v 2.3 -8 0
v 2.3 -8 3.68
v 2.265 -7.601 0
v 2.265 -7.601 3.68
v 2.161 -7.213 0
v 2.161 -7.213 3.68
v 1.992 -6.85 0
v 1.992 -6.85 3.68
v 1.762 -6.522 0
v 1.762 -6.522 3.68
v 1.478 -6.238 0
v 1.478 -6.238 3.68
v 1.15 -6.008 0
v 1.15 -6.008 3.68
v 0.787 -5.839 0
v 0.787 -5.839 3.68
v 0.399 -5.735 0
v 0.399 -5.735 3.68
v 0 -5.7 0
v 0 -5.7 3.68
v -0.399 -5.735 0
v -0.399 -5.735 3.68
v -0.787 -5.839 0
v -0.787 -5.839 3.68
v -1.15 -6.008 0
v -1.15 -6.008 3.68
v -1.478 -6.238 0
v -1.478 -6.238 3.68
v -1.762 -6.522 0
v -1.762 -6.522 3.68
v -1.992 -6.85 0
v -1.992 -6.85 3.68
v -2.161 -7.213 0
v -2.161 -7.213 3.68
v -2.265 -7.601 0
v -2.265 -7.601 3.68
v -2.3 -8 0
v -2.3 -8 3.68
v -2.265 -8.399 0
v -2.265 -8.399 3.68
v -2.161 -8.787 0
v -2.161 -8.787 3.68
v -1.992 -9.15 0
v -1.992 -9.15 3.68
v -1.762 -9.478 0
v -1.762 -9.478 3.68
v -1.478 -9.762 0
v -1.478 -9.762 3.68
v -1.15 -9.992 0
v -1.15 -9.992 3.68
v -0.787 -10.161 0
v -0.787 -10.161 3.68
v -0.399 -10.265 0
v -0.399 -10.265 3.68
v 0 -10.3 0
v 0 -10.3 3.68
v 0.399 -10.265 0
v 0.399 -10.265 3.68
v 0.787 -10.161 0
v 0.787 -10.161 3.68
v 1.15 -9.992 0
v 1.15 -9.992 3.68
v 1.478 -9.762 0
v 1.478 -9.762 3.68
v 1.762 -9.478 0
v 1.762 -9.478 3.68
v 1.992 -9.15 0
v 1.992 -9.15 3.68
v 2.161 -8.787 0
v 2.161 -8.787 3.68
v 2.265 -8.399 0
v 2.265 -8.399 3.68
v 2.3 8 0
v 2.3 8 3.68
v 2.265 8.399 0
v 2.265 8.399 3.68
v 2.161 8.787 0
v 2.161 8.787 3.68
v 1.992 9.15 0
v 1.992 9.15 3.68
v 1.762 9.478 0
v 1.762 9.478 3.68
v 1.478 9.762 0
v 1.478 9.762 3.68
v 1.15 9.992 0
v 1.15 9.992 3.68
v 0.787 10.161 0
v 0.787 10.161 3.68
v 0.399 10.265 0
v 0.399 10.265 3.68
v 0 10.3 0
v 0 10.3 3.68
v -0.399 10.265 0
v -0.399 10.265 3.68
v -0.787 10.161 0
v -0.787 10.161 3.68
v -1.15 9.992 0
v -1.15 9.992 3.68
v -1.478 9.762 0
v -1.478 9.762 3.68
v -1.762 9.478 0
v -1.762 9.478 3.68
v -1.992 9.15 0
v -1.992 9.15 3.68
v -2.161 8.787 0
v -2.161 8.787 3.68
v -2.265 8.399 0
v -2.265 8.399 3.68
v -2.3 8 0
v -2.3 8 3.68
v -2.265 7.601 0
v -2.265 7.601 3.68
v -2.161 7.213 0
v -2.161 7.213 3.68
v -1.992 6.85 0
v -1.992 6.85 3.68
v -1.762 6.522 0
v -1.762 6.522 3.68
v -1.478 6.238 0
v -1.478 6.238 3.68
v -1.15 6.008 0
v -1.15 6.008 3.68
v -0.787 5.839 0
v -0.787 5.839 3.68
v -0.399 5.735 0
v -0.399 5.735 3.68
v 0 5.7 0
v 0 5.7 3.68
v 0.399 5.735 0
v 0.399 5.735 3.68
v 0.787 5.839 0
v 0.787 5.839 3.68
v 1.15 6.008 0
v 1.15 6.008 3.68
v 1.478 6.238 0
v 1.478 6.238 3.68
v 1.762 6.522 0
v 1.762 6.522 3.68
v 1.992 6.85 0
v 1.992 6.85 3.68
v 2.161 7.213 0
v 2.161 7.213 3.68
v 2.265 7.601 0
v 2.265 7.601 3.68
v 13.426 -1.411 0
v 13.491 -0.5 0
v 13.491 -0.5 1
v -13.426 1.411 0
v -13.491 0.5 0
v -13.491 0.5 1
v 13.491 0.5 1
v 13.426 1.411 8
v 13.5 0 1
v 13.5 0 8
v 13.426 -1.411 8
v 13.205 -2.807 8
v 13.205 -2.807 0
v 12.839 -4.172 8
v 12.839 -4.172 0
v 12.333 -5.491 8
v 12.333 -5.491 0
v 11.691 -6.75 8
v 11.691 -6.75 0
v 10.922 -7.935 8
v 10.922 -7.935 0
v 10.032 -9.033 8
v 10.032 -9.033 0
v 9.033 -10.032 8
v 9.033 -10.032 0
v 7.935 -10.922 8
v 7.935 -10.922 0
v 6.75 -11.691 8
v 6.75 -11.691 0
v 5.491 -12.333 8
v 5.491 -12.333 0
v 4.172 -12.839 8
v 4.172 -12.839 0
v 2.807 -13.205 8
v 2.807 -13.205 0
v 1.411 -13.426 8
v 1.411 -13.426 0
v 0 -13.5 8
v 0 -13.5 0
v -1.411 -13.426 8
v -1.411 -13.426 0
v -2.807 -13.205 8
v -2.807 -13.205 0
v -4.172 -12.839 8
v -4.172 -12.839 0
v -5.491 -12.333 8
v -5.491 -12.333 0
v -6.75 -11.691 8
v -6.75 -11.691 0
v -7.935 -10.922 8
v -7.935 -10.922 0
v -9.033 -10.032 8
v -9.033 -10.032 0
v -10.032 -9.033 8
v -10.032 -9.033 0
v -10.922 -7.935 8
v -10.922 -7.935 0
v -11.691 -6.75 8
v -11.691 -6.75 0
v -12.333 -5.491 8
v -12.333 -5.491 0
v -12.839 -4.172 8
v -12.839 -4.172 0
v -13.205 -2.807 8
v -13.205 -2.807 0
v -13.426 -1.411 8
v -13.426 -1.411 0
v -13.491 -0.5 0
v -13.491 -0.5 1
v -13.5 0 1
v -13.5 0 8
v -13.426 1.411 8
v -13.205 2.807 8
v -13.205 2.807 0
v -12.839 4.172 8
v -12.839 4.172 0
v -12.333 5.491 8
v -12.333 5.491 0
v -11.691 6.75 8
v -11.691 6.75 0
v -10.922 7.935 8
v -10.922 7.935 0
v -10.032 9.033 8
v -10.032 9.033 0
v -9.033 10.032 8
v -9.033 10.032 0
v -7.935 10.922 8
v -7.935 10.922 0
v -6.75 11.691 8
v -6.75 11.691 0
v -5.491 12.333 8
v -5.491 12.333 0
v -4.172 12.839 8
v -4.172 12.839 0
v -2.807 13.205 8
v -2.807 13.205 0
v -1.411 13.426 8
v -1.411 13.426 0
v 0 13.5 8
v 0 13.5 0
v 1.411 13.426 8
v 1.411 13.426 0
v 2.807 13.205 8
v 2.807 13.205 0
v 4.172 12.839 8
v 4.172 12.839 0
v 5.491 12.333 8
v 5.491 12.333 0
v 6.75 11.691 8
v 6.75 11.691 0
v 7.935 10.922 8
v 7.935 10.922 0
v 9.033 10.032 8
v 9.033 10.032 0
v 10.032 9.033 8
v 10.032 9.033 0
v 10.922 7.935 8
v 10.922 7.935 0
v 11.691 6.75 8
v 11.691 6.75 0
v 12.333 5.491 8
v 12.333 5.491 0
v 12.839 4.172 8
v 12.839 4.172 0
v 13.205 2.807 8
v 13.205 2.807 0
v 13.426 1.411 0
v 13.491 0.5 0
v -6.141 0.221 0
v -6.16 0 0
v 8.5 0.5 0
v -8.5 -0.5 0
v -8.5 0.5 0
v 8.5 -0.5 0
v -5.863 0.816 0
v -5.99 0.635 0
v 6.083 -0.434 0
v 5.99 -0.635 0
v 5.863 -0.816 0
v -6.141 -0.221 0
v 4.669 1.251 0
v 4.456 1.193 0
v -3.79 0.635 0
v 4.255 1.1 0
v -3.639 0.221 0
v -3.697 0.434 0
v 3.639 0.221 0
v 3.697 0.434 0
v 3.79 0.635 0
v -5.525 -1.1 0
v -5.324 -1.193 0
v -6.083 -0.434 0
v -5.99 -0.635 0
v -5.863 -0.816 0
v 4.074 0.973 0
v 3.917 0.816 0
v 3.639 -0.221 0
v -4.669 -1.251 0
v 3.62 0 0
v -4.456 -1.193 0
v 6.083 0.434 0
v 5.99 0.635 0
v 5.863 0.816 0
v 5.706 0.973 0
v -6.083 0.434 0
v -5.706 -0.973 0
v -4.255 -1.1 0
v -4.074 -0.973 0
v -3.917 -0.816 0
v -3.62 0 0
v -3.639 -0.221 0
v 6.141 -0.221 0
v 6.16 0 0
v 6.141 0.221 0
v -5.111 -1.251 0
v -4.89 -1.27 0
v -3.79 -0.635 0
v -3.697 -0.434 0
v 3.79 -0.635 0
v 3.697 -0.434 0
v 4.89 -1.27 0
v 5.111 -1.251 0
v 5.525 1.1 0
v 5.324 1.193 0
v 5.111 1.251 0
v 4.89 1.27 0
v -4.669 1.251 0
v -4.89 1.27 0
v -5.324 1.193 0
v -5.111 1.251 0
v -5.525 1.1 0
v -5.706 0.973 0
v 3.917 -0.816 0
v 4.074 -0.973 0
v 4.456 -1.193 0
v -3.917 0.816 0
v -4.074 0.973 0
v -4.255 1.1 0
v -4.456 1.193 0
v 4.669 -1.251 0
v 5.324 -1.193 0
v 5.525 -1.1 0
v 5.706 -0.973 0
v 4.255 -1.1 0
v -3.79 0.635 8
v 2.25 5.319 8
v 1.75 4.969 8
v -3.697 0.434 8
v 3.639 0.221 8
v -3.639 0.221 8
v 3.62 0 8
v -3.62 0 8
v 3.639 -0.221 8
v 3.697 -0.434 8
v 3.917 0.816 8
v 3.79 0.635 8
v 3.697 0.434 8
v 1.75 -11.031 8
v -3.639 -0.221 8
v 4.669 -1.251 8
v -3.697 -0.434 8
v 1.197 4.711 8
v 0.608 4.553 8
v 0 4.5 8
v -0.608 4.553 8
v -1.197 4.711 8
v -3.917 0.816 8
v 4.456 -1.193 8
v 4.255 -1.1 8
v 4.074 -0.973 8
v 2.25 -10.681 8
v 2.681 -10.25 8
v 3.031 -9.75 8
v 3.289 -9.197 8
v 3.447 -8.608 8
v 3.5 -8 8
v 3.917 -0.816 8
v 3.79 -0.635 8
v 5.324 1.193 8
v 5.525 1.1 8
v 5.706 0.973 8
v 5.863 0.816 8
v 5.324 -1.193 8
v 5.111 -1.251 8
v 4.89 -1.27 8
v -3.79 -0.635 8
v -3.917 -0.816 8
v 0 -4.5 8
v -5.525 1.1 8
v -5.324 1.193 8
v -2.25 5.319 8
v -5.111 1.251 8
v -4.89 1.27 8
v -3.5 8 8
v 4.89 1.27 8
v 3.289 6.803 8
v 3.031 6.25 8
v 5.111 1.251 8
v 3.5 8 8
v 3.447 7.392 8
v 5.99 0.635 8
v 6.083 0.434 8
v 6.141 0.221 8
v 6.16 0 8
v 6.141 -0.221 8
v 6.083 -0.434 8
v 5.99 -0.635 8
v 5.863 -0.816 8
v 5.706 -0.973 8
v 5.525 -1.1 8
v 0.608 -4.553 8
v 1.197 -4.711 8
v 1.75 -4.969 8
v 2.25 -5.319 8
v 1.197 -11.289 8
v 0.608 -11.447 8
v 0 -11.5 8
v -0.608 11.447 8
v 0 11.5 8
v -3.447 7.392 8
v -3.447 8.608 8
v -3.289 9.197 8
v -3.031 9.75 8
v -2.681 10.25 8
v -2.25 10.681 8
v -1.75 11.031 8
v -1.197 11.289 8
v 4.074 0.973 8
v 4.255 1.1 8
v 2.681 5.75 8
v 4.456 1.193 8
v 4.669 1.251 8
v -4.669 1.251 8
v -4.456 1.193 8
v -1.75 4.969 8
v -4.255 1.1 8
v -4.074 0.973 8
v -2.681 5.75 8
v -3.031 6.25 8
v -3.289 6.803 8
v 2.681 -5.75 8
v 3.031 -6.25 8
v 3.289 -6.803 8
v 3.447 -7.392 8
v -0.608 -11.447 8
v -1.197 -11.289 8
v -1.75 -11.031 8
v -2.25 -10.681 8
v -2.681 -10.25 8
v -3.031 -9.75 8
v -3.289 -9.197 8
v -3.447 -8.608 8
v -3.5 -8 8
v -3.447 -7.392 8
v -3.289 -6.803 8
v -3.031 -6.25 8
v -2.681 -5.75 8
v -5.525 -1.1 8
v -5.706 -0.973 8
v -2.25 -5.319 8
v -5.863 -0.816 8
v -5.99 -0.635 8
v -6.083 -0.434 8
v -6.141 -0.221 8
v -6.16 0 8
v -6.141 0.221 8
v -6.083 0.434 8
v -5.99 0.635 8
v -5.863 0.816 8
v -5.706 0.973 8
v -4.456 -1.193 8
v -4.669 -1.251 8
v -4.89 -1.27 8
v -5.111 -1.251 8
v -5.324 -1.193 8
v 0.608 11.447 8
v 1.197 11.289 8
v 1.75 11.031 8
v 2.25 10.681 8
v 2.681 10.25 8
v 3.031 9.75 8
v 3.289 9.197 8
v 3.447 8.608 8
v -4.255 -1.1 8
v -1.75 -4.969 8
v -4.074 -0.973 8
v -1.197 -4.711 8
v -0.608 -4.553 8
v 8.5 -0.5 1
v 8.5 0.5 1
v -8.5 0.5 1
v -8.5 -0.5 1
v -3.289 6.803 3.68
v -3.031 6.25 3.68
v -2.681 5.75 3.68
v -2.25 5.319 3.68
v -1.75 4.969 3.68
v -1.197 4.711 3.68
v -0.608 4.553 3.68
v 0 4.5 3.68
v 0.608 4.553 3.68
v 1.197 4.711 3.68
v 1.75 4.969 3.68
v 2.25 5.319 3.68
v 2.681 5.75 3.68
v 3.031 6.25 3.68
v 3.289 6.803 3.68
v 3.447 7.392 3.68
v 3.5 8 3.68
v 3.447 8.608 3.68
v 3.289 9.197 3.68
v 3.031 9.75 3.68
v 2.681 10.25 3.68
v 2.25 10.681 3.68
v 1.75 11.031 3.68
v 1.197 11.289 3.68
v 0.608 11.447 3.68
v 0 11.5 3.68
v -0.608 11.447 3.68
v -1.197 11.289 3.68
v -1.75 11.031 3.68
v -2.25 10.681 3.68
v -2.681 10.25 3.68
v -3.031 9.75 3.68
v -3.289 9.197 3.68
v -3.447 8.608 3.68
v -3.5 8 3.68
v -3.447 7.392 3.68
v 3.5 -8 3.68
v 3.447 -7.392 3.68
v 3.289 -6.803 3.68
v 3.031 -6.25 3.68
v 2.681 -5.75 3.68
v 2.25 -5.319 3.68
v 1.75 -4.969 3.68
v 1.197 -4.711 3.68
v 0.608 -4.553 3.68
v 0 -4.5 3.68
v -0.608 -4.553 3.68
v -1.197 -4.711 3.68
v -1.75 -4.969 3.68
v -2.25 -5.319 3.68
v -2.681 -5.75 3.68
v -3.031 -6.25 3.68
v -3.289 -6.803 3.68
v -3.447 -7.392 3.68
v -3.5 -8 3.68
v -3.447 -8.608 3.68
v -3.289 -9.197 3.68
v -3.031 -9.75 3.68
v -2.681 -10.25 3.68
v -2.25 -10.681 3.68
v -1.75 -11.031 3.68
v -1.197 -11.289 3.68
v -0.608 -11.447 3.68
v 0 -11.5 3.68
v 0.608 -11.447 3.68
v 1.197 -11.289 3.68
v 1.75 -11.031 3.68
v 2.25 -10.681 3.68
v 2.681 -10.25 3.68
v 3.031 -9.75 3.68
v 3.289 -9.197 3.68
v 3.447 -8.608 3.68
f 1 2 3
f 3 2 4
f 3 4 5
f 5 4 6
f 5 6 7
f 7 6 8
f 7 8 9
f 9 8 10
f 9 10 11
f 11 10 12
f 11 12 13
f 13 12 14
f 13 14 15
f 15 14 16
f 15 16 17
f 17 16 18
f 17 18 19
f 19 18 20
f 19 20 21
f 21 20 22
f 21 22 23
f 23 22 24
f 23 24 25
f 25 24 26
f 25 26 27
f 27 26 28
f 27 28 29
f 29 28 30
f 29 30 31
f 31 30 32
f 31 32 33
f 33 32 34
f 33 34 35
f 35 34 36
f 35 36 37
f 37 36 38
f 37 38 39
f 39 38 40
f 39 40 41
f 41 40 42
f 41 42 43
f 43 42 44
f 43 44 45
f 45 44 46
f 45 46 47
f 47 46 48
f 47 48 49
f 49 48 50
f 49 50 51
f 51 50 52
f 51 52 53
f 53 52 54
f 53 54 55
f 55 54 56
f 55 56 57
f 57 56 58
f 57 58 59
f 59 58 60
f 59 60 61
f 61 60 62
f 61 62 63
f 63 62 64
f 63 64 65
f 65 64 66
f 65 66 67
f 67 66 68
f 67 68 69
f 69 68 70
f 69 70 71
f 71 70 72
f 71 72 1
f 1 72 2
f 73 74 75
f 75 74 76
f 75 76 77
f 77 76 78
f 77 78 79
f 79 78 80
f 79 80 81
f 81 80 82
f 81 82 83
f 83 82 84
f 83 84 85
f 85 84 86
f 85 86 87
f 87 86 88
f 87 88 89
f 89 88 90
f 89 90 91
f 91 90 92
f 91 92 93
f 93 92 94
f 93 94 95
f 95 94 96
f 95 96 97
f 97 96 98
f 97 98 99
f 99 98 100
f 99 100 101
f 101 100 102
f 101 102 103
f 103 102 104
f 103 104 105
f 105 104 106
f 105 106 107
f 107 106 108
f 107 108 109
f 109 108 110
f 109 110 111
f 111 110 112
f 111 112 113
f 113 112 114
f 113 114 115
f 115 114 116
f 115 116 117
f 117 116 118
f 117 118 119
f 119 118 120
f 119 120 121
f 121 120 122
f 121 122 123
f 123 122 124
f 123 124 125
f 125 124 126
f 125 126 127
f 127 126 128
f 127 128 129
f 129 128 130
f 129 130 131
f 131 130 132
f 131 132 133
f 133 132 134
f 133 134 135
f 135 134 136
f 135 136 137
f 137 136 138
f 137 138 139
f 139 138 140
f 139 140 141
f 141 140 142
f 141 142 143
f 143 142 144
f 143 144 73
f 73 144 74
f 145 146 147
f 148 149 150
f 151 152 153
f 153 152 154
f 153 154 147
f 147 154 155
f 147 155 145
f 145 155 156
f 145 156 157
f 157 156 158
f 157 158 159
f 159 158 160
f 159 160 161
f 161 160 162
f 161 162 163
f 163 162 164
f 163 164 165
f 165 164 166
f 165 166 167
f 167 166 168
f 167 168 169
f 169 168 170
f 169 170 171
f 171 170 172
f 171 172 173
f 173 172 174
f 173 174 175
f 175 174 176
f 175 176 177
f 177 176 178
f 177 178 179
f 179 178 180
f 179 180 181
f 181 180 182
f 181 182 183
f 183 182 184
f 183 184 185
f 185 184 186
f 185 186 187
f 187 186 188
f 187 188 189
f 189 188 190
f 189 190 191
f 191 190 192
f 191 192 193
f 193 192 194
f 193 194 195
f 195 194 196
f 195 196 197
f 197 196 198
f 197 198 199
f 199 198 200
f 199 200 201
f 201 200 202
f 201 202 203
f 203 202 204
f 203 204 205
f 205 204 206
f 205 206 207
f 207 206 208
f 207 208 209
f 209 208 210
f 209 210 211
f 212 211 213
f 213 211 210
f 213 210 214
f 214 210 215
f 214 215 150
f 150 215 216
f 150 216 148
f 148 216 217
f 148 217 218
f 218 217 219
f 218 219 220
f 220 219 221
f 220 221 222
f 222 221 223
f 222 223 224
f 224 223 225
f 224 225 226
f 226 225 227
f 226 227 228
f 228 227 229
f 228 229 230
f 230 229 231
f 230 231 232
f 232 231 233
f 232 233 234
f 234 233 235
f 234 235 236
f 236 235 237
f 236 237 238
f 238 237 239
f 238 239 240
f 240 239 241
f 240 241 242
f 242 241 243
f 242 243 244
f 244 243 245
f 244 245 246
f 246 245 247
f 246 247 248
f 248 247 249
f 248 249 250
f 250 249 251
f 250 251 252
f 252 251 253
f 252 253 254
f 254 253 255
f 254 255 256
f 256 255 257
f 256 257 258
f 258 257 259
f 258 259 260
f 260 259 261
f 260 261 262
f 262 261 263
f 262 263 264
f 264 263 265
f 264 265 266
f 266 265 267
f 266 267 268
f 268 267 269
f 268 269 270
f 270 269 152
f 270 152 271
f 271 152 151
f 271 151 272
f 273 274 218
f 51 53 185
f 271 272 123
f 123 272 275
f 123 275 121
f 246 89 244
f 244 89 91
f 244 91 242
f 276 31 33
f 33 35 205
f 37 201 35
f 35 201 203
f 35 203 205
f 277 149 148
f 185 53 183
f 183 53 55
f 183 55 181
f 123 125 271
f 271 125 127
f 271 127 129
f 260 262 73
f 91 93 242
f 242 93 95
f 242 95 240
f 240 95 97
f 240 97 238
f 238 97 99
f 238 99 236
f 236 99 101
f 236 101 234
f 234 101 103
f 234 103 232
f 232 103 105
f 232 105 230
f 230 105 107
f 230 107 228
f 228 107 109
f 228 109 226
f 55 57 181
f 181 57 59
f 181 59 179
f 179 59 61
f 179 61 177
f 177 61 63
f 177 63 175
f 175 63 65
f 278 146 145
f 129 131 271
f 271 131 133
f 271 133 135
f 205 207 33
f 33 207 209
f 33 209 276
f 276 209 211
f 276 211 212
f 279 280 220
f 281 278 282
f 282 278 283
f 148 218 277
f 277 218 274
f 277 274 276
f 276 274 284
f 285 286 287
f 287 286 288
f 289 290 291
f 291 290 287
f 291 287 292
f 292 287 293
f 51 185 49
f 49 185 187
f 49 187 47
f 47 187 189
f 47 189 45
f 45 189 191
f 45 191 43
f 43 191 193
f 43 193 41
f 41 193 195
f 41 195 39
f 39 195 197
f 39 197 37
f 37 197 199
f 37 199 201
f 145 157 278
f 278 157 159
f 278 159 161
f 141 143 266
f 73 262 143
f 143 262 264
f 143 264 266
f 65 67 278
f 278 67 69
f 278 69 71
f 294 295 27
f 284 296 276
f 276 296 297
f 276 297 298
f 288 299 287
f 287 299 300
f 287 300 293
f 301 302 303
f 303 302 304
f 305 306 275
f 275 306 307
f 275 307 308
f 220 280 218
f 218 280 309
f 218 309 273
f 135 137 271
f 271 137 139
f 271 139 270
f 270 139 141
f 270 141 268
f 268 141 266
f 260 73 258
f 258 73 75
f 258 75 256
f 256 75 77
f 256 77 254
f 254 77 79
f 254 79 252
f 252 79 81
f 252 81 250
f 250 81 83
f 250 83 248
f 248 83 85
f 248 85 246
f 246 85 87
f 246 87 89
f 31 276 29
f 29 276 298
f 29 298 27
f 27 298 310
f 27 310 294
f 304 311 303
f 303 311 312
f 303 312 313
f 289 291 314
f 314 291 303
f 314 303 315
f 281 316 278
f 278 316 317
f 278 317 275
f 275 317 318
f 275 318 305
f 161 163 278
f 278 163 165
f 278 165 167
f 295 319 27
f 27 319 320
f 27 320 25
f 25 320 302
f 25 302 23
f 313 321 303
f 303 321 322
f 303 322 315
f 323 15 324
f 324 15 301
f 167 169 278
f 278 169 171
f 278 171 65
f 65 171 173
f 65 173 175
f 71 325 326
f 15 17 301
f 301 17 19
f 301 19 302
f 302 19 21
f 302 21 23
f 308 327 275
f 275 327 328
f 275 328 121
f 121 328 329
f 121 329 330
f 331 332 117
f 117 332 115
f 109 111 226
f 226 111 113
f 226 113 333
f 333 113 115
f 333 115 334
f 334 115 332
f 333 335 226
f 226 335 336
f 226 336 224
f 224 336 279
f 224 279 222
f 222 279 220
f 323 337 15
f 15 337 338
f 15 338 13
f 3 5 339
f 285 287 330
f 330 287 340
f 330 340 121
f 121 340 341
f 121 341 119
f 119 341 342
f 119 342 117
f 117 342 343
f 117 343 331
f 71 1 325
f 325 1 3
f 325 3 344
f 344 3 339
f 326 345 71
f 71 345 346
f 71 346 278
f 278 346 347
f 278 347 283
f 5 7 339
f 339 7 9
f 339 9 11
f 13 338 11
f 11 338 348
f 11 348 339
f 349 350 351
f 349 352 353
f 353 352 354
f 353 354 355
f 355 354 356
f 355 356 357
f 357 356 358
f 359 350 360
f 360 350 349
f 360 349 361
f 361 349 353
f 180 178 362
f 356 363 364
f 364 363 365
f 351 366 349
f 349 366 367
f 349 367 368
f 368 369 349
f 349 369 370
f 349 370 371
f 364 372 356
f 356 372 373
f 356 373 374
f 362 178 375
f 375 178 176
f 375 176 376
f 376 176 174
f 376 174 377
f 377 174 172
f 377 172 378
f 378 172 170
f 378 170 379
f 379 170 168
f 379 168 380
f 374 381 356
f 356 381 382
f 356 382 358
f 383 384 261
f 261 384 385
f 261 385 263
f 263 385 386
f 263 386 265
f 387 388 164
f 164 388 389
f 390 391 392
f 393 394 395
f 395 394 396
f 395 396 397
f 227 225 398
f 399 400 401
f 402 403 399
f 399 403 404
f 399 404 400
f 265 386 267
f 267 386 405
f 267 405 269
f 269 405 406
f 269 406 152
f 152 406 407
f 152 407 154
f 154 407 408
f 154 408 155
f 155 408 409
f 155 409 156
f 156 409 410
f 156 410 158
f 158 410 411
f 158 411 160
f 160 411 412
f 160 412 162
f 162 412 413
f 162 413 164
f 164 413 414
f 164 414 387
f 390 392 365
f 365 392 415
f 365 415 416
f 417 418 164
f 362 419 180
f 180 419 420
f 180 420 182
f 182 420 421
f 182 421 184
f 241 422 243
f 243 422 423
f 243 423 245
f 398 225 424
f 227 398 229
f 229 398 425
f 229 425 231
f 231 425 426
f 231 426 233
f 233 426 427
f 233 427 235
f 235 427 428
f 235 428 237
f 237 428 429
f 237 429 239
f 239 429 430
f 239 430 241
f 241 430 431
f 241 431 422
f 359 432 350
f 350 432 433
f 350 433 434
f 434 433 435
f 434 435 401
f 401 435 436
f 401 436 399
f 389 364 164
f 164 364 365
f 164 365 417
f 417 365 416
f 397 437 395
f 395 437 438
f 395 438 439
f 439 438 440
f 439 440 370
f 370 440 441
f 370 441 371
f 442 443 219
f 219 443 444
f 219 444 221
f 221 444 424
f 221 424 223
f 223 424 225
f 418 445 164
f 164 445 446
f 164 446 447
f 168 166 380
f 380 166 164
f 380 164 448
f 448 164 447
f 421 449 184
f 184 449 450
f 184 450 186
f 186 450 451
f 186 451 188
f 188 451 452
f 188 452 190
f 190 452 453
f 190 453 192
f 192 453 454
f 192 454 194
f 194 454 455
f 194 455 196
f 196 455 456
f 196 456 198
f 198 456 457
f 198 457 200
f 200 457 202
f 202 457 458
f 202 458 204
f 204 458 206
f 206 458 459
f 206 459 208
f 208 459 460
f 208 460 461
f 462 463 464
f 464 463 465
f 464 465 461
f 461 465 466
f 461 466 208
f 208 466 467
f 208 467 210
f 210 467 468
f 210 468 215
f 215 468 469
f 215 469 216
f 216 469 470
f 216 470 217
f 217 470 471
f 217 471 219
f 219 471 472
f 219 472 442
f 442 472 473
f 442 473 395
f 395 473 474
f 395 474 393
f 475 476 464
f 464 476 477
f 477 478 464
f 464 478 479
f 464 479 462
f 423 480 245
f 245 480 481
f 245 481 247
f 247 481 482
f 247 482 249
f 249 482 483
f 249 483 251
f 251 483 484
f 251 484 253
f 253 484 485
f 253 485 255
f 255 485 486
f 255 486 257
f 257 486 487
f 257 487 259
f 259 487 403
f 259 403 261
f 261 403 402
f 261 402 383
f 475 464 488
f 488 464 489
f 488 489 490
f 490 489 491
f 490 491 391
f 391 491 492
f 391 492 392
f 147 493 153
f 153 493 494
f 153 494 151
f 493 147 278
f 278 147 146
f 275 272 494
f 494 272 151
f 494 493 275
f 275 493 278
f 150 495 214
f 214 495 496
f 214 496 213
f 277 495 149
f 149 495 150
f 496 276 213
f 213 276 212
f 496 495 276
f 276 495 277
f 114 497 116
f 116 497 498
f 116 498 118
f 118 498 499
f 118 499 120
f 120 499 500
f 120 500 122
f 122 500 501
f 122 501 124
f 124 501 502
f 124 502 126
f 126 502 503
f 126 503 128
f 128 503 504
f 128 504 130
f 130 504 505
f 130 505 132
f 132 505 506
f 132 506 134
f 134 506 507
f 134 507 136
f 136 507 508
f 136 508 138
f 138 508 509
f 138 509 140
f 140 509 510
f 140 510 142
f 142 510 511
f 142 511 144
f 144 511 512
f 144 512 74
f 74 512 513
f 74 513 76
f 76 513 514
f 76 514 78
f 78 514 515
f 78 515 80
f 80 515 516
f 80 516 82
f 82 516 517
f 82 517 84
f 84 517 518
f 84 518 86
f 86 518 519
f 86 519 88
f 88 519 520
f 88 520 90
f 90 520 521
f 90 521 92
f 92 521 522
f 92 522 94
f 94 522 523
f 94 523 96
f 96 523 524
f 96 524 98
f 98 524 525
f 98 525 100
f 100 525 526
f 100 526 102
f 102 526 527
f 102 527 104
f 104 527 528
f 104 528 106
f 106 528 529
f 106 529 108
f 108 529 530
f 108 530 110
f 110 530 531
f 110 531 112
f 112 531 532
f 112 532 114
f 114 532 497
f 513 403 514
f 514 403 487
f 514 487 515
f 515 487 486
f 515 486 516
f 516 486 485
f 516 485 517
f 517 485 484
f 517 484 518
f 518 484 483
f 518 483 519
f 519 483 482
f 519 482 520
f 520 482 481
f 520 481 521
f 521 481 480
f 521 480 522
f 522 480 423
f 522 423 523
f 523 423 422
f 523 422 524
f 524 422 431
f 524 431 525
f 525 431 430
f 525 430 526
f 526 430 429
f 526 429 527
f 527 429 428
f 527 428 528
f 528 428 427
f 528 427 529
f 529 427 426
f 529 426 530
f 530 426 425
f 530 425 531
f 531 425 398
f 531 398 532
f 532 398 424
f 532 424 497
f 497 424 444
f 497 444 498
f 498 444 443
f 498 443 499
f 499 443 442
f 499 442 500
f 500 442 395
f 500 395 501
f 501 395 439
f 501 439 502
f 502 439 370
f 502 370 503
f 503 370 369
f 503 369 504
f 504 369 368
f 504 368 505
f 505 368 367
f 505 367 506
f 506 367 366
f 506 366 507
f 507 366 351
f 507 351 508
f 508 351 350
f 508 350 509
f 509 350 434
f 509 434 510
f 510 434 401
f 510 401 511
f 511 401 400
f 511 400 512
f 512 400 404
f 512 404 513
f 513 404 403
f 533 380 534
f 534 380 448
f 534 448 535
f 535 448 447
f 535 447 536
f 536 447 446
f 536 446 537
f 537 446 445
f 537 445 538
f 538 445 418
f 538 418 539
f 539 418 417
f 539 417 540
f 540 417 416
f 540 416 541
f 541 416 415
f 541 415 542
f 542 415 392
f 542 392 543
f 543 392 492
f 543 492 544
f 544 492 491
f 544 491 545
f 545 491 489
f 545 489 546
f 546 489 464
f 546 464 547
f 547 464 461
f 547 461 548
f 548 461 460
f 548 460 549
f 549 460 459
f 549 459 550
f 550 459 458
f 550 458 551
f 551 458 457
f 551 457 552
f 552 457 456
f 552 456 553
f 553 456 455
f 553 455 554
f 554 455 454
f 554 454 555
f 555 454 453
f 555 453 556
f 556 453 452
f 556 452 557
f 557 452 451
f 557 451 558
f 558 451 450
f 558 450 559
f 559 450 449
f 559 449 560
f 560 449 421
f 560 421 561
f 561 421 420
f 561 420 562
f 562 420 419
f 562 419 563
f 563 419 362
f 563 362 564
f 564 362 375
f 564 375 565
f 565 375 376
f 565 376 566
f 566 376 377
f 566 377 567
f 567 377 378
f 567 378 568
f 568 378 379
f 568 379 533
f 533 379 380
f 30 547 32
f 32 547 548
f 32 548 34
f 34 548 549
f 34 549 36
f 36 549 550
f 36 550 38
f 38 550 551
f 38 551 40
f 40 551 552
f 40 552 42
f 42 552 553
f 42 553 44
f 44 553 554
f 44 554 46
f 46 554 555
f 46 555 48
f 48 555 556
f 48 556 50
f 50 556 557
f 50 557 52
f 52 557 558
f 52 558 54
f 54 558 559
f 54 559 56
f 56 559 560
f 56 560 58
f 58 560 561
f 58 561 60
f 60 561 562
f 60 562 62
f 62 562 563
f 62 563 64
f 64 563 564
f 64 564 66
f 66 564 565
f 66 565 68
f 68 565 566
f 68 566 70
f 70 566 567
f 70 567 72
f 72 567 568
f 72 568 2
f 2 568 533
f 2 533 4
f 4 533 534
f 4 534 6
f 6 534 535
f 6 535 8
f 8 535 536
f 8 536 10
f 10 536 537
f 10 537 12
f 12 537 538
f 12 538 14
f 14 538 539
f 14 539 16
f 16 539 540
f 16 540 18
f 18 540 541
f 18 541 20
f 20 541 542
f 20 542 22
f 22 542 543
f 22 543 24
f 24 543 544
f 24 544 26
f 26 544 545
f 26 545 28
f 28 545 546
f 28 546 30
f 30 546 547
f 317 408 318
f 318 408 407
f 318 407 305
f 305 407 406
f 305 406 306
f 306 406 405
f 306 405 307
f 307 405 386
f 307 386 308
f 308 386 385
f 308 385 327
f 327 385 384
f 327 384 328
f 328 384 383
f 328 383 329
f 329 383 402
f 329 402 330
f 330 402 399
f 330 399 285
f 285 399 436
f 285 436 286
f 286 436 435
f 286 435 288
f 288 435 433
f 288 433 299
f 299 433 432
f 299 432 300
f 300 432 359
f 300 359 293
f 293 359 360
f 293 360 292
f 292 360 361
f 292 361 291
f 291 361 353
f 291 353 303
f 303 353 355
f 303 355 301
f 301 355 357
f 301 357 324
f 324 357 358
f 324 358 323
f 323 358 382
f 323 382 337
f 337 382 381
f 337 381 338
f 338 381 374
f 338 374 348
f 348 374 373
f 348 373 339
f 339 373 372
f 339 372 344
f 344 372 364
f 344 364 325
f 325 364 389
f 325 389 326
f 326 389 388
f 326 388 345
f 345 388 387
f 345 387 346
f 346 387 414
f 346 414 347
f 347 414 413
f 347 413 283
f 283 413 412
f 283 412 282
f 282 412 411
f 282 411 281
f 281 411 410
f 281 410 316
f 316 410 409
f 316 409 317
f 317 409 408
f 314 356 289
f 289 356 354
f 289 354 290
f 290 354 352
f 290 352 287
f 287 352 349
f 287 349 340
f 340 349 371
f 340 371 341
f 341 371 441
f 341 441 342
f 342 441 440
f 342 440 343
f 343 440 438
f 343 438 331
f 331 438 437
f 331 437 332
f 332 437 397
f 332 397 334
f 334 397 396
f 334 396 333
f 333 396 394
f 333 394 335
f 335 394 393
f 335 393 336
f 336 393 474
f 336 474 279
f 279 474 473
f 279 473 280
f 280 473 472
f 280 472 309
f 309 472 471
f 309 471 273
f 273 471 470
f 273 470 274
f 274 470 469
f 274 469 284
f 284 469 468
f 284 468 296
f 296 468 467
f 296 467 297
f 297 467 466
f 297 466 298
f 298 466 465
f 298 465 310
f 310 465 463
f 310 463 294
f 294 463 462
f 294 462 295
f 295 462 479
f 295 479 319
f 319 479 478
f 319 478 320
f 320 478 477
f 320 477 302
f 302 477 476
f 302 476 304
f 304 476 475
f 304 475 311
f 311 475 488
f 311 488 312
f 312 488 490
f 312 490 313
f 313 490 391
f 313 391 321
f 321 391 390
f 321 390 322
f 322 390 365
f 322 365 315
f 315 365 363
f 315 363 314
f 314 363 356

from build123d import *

# Parameters (mm, degrees)
SKETCH2_R           = 13.5
BOSS_EXTRUDE1_DEPTH = 8
SKETCH5_R           = 2.3
CUT_EXTRUDE4_DEPTH  = 10
SKETCH8_W           = 10
SKETCH8_H           = 1
CUT_EXTRUDE5_DEPTH  = 1
SKETCH11_R          = 3.5
CUT_EXTRUDE6_DEPTH  = 4.32
SKETCH12_R          = 1.27
CUT_EXTRUDE7_DEPTH  = 32.5


with BuildPart() as part:
    # Sketch2 → Boss-Extrude1 (new body)
    with BuildSketch(Plane.XY):
        Circle(SKETCH2_R)
    extrude(amount=BOSS_EXTRUDE1_DEPTH)

    # Sketch5 → Cut-Extrude4 (cut)
    with BuildSketch(Plane.XY.offset(8)):
        with Locations((0, 8)):
            Circle(SKETCH5_R)
    cut_extrude4 = extrude(amount=-CUT_EXTRUDE4_DEPTH, mode=Mode.SUBTRACT)

    # Mirror1: Cut-Extrude4 across plane
    add(cut_extrude4.mirror(Plane.ZX), mode=Mode.SUBTRACT)

    # Sketch8 → Cut-Extrude5 (cut)
    with BuildSketch(Plane(origin=(0, 0, 0), x_dir=(-1, 0, 0), z_dir=(0, 0, -1))):
        with Locations((-13.5, 0)):
            Rectangle(SKETCH8_W, SKETCH8_H)
    cut_extrude5 = extrude(amount=-CUT_EXTRUDE5_DEPTH, mode=Mode.SUBTRACT)

    # Mirror2: Cut-Extrude5 across plane
    add(cut_extrude5.mirror(Plane(origin=(0, 0, 0), x_dir=(0, 0, 1), z_dir=(1, 0, 0))), mode=Mode.SUBTRACT)

    # Sketch11 → Cut-Extrude6 (cut)
    with BuildSketch(Plane.XY.offset(8)):
        with Locations((0, 8)):
            Circle(SKETCH11_R)
    cut_extrude6 = extrude(amount=-CUT_EXTRUDE6_DEPTH, mode=Mode.SUBTRACT)

    # Mirror3: Cut-Extrude6 across plane
    add(cut_extrude6.mirror(Plane.ZX), mode=Mode.SUBTRACT)

    # Sketch12 → Cut-Extrude7 (cut)
    with BuildSketch(Plane.XY.offset(8)):
        with Locations((4.89, 0)):
            Circle(SKETCH12_R)
        with Locations((-4.89, 0)):
            Circle(SKETCH12_R)
    extrude(amount=-CUT_EXTRUDE7_DEPTH, mode=Mode.SUBTRACT)


solid = part.part
